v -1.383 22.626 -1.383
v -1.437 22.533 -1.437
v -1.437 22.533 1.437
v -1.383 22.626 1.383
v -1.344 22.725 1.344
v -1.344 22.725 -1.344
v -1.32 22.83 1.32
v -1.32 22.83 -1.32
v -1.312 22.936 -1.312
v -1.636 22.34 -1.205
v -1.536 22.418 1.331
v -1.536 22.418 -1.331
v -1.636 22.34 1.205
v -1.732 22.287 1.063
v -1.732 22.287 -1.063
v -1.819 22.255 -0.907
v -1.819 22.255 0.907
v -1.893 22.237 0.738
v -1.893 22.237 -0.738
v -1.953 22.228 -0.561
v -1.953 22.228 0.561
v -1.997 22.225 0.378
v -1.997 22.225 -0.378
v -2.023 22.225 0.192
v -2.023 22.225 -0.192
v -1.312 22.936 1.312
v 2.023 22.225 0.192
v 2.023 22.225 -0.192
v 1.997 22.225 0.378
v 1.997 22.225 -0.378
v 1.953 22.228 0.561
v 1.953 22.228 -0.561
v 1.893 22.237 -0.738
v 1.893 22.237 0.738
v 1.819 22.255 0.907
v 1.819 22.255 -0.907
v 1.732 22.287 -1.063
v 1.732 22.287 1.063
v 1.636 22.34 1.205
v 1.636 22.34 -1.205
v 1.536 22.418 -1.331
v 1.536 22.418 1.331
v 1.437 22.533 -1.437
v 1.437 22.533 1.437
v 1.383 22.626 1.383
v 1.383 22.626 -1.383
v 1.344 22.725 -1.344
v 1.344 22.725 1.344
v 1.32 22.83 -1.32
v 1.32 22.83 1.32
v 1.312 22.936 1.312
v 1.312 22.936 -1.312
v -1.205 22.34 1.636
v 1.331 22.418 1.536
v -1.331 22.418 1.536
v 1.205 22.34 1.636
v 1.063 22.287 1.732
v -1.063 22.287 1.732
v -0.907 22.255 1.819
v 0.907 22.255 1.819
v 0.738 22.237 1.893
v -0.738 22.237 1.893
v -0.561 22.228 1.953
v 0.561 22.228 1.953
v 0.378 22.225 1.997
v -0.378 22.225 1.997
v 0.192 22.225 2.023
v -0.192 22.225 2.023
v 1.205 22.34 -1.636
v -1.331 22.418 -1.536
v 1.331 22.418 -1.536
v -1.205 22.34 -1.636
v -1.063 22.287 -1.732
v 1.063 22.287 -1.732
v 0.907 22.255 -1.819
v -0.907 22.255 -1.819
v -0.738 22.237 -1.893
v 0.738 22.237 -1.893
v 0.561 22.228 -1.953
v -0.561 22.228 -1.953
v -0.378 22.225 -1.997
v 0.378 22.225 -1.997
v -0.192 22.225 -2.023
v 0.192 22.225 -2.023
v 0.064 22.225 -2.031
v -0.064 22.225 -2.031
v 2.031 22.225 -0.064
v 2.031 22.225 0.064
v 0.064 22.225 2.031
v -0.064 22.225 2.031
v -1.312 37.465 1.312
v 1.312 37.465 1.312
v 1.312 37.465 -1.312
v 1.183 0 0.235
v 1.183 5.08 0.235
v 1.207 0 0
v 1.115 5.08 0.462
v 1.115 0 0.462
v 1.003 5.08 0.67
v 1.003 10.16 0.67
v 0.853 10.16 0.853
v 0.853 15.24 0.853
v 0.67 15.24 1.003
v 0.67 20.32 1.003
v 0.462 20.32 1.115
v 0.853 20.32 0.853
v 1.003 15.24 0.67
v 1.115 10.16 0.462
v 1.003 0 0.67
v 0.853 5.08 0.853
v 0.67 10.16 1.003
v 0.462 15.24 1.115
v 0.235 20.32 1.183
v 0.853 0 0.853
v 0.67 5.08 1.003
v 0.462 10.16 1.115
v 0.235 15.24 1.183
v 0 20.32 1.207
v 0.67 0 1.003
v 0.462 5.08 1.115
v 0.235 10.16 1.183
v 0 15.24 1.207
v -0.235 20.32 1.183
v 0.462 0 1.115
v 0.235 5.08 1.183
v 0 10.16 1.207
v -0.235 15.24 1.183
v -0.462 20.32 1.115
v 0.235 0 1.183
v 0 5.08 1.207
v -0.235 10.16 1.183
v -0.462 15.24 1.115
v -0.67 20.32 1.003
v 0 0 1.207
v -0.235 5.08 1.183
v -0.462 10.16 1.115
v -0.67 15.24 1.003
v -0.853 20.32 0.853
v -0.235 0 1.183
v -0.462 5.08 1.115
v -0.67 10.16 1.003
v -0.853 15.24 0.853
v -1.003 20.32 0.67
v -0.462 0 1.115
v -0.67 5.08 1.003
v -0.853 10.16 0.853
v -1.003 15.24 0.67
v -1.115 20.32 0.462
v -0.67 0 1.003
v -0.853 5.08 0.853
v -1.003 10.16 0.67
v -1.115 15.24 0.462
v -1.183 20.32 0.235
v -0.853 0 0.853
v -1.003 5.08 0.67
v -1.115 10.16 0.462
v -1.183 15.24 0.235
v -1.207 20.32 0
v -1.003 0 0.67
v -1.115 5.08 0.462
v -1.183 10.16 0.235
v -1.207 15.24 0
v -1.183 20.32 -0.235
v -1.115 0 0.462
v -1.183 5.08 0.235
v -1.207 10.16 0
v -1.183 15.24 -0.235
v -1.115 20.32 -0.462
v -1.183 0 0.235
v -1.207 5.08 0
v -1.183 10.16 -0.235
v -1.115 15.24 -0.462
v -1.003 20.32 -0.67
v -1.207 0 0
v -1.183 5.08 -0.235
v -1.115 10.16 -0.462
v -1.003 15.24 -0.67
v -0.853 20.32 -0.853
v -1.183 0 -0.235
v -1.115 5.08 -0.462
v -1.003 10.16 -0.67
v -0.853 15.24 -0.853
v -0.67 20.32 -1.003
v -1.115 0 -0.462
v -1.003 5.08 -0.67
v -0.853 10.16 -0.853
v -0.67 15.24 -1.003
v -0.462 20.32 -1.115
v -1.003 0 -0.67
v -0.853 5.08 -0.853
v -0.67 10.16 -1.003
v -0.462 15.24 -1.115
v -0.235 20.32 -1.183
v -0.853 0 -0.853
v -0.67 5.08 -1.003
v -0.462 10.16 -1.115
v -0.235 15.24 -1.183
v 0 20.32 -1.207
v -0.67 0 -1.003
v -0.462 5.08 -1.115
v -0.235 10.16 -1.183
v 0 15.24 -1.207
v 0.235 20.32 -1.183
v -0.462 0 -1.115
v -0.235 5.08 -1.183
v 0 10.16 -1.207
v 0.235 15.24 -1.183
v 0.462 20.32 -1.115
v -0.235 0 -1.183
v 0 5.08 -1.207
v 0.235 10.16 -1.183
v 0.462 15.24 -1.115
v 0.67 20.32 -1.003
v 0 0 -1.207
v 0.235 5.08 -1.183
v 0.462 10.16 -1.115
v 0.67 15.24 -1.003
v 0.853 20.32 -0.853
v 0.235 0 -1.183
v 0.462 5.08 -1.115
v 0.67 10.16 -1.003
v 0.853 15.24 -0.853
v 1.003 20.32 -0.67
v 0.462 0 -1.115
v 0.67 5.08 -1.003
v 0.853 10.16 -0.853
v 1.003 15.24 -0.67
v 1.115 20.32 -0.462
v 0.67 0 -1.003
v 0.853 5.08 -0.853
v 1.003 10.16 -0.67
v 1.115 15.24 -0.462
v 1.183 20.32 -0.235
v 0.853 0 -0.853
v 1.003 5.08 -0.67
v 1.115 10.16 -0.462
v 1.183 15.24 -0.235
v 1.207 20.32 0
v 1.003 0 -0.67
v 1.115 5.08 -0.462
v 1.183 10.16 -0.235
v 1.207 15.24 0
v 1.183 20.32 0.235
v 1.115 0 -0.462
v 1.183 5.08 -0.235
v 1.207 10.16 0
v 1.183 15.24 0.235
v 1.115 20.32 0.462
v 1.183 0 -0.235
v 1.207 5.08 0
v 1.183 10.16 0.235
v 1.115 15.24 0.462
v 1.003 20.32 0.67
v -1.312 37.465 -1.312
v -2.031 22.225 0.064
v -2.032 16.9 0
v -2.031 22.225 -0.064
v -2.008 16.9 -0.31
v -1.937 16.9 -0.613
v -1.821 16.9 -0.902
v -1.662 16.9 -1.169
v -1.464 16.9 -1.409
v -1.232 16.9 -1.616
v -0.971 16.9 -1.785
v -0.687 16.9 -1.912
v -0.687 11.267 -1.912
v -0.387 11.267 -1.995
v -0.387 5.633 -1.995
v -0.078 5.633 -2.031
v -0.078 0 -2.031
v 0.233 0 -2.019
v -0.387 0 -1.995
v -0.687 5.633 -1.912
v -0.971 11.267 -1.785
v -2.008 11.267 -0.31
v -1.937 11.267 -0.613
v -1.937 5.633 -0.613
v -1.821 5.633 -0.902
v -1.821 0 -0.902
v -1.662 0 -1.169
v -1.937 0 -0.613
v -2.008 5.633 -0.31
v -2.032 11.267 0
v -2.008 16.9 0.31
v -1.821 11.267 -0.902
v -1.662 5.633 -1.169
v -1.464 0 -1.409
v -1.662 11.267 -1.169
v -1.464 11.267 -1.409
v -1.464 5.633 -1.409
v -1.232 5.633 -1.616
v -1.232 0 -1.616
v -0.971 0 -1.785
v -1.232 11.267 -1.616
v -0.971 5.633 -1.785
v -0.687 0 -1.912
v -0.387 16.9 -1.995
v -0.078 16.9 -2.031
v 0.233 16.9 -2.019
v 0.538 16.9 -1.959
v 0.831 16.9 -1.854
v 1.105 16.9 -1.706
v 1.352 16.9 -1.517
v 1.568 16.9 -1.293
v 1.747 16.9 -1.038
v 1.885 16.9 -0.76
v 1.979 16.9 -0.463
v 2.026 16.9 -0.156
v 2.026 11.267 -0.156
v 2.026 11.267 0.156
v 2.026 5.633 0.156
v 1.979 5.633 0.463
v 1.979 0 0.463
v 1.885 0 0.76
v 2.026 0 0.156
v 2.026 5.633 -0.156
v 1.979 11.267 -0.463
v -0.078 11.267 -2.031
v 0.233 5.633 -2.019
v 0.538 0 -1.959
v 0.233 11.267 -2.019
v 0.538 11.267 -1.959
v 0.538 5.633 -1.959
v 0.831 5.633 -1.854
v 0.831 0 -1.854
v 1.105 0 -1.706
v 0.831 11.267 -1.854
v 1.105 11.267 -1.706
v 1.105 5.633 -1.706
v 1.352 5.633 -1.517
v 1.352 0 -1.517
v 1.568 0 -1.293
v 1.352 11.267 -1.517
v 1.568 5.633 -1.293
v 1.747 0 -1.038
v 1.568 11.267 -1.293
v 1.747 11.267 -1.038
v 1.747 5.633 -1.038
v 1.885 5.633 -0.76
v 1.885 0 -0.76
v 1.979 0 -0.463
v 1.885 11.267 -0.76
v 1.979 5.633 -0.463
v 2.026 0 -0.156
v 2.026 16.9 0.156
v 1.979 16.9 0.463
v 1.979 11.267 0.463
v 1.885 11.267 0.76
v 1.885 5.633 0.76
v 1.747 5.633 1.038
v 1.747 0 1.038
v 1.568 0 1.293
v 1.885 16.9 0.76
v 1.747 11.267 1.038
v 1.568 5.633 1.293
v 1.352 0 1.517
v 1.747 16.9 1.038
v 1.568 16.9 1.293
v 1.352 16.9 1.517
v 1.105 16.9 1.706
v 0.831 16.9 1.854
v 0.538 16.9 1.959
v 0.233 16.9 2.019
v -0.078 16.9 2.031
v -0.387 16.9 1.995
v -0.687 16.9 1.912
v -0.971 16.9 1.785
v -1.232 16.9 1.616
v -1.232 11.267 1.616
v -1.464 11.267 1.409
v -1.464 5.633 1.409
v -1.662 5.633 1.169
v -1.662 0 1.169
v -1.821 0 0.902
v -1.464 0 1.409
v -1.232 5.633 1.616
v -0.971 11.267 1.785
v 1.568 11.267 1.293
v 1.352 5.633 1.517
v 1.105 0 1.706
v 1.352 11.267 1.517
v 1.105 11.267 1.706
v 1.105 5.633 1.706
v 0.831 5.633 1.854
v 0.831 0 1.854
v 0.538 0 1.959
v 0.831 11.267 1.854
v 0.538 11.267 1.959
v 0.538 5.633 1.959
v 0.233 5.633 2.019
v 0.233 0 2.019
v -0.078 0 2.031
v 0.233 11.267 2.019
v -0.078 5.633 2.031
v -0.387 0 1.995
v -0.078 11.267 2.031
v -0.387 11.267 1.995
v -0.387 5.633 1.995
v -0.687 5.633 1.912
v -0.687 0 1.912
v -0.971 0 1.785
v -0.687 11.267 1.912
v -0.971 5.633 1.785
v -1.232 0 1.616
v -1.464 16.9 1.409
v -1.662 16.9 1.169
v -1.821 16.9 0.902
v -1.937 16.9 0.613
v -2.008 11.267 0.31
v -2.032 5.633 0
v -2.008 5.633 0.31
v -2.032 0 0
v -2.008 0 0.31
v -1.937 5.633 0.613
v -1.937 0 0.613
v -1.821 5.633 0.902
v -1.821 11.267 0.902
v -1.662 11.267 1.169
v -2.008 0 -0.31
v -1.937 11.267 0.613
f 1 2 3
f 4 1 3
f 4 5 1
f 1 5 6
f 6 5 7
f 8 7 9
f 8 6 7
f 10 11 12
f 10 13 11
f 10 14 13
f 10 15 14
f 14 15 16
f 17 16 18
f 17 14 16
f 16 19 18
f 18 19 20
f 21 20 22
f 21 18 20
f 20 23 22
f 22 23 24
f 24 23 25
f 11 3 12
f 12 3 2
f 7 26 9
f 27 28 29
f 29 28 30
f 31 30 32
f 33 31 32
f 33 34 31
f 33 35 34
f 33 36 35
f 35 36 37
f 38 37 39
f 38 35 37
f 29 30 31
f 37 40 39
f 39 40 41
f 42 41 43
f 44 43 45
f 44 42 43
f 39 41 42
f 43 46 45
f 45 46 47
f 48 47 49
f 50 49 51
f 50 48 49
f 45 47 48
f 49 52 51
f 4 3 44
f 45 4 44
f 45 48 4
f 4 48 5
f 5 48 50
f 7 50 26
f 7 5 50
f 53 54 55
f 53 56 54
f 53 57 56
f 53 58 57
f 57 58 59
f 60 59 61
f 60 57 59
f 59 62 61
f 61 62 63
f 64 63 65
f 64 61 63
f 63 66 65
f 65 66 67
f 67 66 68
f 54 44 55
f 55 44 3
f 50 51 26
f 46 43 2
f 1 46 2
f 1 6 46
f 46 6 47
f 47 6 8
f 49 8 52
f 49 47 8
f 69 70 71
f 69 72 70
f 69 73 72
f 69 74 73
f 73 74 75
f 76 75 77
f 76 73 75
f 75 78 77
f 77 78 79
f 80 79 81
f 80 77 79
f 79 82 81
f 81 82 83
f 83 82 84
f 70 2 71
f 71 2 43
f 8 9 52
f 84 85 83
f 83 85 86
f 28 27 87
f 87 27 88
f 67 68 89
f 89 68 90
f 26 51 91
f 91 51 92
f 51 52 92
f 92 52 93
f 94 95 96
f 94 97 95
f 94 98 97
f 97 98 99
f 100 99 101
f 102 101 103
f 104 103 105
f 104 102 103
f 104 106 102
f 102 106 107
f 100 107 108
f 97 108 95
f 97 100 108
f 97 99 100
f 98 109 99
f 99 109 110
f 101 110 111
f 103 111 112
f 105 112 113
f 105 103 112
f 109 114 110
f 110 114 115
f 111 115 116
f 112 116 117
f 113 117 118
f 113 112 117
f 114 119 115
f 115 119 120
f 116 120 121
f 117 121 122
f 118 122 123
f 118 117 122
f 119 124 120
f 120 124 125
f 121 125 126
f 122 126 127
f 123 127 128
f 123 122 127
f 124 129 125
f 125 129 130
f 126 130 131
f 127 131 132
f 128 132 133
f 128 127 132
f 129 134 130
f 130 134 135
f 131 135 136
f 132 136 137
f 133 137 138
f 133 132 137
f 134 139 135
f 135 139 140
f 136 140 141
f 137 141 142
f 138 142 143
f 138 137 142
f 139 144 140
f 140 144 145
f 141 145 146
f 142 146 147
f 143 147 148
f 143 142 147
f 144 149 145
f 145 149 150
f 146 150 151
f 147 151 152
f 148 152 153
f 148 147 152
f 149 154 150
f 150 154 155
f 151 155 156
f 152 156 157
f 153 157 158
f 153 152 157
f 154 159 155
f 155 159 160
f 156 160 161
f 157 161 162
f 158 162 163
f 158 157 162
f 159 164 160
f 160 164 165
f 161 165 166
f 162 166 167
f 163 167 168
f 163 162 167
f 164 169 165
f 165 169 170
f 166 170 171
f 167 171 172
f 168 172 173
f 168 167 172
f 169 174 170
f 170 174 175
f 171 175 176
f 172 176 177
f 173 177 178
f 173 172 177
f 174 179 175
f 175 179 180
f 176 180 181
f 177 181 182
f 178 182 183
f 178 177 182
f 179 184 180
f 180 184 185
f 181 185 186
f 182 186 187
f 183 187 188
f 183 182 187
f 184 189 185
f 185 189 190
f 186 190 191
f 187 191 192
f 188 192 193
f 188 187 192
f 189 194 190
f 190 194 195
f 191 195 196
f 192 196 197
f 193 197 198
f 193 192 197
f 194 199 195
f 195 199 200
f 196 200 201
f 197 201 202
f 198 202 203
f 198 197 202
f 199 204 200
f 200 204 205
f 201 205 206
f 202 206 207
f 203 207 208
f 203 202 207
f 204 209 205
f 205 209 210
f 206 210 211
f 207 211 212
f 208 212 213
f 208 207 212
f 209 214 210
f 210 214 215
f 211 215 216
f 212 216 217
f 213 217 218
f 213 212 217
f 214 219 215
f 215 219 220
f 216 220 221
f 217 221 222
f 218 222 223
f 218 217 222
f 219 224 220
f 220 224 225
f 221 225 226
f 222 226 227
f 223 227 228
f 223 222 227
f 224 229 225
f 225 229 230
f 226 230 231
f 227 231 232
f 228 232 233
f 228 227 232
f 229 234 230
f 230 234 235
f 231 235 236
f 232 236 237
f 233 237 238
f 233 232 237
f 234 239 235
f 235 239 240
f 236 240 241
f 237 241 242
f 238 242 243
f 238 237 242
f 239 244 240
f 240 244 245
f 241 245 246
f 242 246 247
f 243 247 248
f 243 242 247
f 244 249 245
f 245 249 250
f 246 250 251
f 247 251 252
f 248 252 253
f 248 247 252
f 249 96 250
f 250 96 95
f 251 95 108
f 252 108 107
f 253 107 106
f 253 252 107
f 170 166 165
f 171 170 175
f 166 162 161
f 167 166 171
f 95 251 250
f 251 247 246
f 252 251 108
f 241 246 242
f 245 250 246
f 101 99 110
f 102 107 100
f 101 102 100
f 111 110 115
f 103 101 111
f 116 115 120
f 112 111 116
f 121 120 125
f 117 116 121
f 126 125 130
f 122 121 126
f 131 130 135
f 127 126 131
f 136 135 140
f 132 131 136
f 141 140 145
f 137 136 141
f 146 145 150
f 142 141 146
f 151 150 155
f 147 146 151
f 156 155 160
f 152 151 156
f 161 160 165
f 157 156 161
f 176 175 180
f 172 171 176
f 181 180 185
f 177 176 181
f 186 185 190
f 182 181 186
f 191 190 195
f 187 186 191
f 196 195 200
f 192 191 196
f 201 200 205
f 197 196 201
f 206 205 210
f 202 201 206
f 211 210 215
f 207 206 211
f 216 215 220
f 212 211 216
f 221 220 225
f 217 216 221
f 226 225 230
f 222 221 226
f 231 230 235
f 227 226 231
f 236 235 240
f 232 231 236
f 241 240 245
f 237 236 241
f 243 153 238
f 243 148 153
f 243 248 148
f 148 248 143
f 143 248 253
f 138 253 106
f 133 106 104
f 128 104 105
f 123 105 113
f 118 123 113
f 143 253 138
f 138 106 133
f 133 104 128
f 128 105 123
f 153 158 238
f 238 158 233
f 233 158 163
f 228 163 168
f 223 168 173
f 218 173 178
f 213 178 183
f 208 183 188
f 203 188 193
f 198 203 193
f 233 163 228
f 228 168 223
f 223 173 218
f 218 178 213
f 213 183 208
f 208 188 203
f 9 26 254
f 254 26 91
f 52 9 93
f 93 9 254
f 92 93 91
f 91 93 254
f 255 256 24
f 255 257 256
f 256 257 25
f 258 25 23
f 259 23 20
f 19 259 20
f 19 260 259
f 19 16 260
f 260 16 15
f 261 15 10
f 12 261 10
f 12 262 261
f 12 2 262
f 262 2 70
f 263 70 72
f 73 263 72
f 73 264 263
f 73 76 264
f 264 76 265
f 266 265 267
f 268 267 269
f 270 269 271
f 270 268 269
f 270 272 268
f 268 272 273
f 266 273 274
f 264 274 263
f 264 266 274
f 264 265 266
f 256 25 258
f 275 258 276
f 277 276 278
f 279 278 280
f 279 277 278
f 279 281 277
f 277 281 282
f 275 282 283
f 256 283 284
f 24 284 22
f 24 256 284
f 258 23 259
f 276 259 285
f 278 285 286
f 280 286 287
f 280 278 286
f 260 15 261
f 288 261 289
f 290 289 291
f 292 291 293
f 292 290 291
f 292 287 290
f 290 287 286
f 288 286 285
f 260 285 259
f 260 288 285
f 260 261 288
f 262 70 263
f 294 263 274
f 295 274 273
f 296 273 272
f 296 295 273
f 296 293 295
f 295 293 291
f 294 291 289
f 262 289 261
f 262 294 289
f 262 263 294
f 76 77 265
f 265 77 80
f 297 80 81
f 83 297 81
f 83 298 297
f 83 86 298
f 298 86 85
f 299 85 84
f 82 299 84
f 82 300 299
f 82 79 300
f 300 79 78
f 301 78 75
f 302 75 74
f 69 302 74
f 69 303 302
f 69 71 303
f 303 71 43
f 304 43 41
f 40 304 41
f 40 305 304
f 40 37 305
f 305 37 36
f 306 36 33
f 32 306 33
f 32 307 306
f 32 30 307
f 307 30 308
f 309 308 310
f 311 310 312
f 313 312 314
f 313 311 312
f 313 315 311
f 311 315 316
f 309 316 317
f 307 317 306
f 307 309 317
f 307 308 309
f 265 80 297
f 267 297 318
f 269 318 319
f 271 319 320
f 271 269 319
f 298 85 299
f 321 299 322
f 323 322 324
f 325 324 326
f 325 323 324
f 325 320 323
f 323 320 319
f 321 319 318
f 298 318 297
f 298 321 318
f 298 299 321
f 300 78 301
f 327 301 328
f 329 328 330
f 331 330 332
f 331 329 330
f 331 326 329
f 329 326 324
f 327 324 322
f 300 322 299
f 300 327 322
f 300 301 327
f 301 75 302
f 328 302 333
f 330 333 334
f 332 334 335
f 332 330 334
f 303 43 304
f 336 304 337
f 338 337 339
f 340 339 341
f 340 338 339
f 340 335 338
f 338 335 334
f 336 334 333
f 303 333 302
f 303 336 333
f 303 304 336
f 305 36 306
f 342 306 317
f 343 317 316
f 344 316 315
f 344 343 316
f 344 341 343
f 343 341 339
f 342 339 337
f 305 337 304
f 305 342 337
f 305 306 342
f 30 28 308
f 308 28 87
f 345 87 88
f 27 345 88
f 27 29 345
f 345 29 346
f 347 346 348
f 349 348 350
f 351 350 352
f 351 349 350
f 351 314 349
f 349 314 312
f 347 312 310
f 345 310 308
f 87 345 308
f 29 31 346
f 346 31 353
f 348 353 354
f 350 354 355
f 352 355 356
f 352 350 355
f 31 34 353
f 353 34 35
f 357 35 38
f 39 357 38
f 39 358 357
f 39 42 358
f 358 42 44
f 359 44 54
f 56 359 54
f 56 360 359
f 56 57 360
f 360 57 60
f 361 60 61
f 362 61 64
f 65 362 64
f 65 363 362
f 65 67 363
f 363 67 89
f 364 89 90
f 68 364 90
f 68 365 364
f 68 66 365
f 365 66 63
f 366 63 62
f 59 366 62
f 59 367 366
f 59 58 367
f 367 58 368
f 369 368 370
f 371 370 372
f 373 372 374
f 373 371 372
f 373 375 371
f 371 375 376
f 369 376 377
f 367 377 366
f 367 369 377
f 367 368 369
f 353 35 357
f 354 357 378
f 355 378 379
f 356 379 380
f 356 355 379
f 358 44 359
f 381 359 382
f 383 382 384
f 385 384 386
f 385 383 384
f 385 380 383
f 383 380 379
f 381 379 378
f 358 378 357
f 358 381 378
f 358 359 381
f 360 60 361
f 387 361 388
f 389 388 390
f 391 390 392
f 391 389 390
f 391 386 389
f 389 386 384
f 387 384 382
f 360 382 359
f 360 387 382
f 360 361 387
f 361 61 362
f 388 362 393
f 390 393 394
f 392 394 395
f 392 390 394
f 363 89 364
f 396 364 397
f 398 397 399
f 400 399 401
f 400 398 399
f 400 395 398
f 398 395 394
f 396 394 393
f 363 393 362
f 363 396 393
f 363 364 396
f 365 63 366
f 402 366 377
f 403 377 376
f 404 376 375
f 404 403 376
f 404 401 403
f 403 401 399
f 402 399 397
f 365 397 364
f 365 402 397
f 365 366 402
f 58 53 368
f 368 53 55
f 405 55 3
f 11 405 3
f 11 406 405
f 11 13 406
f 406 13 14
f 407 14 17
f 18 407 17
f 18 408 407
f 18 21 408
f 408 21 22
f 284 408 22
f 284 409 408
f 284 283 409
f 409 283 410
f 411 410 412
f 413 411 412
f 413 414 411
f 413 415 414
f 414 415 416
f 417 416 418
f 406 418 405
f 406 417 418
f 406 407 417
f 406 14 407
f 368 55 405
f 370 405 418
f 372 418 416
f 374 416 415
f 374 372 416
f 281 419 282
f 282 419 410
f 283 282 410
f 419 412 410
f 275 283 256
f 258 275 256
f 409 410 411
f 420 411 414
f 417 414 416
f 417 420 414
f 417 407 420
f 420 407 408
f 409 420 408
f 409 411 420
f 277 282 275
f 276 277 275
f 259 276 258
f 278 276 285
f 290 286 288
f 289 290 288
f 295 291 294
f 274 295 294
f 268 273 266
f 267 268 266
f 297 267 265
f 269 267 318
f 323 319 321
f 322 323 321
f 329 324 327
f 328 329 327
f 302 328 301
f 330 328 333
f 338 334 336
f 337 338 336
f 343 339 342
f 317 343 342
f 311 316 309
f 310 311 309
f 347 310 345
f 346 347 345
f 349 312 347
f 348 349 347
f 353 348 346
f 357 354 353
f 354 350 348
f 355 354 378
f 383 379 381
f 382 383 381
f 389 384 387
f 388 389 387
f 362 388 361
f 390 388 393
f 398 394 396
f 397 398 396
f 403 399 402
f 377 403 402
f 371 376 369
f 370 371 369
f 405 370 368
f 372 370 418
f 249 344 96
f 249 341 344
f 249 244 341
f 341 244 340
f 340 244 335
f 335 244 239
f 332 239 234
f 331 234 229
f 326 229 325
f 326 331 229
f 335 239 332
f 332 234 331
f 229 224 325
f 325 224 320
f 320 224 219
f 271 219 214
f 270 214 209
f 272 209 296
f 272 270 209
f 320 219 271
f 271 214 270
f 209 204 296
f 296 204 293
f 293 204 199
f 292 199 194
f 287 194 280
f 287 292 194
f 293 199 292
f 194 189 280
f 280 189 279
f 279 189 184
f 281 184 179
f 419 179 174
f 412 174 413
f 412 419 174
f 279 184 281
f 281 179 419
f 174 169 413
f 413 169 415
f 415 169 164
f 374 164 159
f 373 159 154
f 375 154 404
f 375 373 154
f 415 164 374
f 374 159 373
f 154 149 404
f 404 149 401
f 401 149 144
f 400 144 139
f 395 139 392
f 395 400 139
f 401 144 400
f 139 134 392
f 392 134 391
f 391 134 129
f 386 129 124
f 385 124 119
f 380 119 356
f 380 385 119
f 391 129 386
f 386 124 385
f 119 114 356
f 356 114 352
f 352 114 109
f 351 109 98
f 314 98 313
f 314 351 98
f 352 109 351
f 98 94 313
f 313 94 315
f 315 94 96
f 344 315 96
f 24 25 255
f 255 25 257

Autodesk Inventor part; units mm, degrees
ref_plane "YZ Plane" through (0, 0, 0) normal (1, 0, 0) x (0, 1, 0)
ref_plane "XZ Plane" through (0, 0, 0) normal (0, 1, 0) x (-1, 0, 0)
ref_plane "XY Plane" through (0, 0, 0) normal (0, 0, 1) x (1, 0, 0)
sketch "Sketch1" plane through (0, 0, 0) normal (0, 1, 0) x (-1, 0, 0)
  circle A0 centre (0, 0) radius 2.032
  dimension "d0" = 4.064
extrude "Extrusion1" add sketch "Sketch1" along normal blind 22.225
sketch "Sketch2" plane through (0, 22.225, 0) normal (0, 1, 0) x (1, 0, 0)
  line L0 (-1.3117, -1.3117) -> (1.3117, -1.3117)
  line L1 (1.3117, -1.3117) -> (1.3117, 1.3117)
  line L2 (1.3117, 1.3117) -> (-1.3117, 1.3117)
  line L3 (-1.3117, 1.3117) -> (-1.3117, -1.3117)
  point P0 (0, 0)
  point P1 (-1.3117, 0)
  point P2 (0, -1.3117)
  dimension "d3" = 2.6234
  dimension "d4" = 2.6234
extrude "Extrusion2" add sketch "Sketch2" along normal blind 15.24
sketch "Sketch3" plane through (0, 0, 0) normal (0, -1, 0) x (1, 0, 0)
  point P0 (0, 0)
  point P1 (0, 0)
hole "Hole1" at (0, 0, 0) direction (0, 1, 0) diameter 2.413 depth 20.32
fillet "Fillet1" radius 0.7112 4 edges at (0, 22.225, 1.3117) (1.3117, 22.225, 0) (0, 22.225, -1.3117) (-1.3117, 22.225, 0)
equation "\"d4\" = d3"
properties part number "shaft_adapter_v2" material "ABS Plastic"
